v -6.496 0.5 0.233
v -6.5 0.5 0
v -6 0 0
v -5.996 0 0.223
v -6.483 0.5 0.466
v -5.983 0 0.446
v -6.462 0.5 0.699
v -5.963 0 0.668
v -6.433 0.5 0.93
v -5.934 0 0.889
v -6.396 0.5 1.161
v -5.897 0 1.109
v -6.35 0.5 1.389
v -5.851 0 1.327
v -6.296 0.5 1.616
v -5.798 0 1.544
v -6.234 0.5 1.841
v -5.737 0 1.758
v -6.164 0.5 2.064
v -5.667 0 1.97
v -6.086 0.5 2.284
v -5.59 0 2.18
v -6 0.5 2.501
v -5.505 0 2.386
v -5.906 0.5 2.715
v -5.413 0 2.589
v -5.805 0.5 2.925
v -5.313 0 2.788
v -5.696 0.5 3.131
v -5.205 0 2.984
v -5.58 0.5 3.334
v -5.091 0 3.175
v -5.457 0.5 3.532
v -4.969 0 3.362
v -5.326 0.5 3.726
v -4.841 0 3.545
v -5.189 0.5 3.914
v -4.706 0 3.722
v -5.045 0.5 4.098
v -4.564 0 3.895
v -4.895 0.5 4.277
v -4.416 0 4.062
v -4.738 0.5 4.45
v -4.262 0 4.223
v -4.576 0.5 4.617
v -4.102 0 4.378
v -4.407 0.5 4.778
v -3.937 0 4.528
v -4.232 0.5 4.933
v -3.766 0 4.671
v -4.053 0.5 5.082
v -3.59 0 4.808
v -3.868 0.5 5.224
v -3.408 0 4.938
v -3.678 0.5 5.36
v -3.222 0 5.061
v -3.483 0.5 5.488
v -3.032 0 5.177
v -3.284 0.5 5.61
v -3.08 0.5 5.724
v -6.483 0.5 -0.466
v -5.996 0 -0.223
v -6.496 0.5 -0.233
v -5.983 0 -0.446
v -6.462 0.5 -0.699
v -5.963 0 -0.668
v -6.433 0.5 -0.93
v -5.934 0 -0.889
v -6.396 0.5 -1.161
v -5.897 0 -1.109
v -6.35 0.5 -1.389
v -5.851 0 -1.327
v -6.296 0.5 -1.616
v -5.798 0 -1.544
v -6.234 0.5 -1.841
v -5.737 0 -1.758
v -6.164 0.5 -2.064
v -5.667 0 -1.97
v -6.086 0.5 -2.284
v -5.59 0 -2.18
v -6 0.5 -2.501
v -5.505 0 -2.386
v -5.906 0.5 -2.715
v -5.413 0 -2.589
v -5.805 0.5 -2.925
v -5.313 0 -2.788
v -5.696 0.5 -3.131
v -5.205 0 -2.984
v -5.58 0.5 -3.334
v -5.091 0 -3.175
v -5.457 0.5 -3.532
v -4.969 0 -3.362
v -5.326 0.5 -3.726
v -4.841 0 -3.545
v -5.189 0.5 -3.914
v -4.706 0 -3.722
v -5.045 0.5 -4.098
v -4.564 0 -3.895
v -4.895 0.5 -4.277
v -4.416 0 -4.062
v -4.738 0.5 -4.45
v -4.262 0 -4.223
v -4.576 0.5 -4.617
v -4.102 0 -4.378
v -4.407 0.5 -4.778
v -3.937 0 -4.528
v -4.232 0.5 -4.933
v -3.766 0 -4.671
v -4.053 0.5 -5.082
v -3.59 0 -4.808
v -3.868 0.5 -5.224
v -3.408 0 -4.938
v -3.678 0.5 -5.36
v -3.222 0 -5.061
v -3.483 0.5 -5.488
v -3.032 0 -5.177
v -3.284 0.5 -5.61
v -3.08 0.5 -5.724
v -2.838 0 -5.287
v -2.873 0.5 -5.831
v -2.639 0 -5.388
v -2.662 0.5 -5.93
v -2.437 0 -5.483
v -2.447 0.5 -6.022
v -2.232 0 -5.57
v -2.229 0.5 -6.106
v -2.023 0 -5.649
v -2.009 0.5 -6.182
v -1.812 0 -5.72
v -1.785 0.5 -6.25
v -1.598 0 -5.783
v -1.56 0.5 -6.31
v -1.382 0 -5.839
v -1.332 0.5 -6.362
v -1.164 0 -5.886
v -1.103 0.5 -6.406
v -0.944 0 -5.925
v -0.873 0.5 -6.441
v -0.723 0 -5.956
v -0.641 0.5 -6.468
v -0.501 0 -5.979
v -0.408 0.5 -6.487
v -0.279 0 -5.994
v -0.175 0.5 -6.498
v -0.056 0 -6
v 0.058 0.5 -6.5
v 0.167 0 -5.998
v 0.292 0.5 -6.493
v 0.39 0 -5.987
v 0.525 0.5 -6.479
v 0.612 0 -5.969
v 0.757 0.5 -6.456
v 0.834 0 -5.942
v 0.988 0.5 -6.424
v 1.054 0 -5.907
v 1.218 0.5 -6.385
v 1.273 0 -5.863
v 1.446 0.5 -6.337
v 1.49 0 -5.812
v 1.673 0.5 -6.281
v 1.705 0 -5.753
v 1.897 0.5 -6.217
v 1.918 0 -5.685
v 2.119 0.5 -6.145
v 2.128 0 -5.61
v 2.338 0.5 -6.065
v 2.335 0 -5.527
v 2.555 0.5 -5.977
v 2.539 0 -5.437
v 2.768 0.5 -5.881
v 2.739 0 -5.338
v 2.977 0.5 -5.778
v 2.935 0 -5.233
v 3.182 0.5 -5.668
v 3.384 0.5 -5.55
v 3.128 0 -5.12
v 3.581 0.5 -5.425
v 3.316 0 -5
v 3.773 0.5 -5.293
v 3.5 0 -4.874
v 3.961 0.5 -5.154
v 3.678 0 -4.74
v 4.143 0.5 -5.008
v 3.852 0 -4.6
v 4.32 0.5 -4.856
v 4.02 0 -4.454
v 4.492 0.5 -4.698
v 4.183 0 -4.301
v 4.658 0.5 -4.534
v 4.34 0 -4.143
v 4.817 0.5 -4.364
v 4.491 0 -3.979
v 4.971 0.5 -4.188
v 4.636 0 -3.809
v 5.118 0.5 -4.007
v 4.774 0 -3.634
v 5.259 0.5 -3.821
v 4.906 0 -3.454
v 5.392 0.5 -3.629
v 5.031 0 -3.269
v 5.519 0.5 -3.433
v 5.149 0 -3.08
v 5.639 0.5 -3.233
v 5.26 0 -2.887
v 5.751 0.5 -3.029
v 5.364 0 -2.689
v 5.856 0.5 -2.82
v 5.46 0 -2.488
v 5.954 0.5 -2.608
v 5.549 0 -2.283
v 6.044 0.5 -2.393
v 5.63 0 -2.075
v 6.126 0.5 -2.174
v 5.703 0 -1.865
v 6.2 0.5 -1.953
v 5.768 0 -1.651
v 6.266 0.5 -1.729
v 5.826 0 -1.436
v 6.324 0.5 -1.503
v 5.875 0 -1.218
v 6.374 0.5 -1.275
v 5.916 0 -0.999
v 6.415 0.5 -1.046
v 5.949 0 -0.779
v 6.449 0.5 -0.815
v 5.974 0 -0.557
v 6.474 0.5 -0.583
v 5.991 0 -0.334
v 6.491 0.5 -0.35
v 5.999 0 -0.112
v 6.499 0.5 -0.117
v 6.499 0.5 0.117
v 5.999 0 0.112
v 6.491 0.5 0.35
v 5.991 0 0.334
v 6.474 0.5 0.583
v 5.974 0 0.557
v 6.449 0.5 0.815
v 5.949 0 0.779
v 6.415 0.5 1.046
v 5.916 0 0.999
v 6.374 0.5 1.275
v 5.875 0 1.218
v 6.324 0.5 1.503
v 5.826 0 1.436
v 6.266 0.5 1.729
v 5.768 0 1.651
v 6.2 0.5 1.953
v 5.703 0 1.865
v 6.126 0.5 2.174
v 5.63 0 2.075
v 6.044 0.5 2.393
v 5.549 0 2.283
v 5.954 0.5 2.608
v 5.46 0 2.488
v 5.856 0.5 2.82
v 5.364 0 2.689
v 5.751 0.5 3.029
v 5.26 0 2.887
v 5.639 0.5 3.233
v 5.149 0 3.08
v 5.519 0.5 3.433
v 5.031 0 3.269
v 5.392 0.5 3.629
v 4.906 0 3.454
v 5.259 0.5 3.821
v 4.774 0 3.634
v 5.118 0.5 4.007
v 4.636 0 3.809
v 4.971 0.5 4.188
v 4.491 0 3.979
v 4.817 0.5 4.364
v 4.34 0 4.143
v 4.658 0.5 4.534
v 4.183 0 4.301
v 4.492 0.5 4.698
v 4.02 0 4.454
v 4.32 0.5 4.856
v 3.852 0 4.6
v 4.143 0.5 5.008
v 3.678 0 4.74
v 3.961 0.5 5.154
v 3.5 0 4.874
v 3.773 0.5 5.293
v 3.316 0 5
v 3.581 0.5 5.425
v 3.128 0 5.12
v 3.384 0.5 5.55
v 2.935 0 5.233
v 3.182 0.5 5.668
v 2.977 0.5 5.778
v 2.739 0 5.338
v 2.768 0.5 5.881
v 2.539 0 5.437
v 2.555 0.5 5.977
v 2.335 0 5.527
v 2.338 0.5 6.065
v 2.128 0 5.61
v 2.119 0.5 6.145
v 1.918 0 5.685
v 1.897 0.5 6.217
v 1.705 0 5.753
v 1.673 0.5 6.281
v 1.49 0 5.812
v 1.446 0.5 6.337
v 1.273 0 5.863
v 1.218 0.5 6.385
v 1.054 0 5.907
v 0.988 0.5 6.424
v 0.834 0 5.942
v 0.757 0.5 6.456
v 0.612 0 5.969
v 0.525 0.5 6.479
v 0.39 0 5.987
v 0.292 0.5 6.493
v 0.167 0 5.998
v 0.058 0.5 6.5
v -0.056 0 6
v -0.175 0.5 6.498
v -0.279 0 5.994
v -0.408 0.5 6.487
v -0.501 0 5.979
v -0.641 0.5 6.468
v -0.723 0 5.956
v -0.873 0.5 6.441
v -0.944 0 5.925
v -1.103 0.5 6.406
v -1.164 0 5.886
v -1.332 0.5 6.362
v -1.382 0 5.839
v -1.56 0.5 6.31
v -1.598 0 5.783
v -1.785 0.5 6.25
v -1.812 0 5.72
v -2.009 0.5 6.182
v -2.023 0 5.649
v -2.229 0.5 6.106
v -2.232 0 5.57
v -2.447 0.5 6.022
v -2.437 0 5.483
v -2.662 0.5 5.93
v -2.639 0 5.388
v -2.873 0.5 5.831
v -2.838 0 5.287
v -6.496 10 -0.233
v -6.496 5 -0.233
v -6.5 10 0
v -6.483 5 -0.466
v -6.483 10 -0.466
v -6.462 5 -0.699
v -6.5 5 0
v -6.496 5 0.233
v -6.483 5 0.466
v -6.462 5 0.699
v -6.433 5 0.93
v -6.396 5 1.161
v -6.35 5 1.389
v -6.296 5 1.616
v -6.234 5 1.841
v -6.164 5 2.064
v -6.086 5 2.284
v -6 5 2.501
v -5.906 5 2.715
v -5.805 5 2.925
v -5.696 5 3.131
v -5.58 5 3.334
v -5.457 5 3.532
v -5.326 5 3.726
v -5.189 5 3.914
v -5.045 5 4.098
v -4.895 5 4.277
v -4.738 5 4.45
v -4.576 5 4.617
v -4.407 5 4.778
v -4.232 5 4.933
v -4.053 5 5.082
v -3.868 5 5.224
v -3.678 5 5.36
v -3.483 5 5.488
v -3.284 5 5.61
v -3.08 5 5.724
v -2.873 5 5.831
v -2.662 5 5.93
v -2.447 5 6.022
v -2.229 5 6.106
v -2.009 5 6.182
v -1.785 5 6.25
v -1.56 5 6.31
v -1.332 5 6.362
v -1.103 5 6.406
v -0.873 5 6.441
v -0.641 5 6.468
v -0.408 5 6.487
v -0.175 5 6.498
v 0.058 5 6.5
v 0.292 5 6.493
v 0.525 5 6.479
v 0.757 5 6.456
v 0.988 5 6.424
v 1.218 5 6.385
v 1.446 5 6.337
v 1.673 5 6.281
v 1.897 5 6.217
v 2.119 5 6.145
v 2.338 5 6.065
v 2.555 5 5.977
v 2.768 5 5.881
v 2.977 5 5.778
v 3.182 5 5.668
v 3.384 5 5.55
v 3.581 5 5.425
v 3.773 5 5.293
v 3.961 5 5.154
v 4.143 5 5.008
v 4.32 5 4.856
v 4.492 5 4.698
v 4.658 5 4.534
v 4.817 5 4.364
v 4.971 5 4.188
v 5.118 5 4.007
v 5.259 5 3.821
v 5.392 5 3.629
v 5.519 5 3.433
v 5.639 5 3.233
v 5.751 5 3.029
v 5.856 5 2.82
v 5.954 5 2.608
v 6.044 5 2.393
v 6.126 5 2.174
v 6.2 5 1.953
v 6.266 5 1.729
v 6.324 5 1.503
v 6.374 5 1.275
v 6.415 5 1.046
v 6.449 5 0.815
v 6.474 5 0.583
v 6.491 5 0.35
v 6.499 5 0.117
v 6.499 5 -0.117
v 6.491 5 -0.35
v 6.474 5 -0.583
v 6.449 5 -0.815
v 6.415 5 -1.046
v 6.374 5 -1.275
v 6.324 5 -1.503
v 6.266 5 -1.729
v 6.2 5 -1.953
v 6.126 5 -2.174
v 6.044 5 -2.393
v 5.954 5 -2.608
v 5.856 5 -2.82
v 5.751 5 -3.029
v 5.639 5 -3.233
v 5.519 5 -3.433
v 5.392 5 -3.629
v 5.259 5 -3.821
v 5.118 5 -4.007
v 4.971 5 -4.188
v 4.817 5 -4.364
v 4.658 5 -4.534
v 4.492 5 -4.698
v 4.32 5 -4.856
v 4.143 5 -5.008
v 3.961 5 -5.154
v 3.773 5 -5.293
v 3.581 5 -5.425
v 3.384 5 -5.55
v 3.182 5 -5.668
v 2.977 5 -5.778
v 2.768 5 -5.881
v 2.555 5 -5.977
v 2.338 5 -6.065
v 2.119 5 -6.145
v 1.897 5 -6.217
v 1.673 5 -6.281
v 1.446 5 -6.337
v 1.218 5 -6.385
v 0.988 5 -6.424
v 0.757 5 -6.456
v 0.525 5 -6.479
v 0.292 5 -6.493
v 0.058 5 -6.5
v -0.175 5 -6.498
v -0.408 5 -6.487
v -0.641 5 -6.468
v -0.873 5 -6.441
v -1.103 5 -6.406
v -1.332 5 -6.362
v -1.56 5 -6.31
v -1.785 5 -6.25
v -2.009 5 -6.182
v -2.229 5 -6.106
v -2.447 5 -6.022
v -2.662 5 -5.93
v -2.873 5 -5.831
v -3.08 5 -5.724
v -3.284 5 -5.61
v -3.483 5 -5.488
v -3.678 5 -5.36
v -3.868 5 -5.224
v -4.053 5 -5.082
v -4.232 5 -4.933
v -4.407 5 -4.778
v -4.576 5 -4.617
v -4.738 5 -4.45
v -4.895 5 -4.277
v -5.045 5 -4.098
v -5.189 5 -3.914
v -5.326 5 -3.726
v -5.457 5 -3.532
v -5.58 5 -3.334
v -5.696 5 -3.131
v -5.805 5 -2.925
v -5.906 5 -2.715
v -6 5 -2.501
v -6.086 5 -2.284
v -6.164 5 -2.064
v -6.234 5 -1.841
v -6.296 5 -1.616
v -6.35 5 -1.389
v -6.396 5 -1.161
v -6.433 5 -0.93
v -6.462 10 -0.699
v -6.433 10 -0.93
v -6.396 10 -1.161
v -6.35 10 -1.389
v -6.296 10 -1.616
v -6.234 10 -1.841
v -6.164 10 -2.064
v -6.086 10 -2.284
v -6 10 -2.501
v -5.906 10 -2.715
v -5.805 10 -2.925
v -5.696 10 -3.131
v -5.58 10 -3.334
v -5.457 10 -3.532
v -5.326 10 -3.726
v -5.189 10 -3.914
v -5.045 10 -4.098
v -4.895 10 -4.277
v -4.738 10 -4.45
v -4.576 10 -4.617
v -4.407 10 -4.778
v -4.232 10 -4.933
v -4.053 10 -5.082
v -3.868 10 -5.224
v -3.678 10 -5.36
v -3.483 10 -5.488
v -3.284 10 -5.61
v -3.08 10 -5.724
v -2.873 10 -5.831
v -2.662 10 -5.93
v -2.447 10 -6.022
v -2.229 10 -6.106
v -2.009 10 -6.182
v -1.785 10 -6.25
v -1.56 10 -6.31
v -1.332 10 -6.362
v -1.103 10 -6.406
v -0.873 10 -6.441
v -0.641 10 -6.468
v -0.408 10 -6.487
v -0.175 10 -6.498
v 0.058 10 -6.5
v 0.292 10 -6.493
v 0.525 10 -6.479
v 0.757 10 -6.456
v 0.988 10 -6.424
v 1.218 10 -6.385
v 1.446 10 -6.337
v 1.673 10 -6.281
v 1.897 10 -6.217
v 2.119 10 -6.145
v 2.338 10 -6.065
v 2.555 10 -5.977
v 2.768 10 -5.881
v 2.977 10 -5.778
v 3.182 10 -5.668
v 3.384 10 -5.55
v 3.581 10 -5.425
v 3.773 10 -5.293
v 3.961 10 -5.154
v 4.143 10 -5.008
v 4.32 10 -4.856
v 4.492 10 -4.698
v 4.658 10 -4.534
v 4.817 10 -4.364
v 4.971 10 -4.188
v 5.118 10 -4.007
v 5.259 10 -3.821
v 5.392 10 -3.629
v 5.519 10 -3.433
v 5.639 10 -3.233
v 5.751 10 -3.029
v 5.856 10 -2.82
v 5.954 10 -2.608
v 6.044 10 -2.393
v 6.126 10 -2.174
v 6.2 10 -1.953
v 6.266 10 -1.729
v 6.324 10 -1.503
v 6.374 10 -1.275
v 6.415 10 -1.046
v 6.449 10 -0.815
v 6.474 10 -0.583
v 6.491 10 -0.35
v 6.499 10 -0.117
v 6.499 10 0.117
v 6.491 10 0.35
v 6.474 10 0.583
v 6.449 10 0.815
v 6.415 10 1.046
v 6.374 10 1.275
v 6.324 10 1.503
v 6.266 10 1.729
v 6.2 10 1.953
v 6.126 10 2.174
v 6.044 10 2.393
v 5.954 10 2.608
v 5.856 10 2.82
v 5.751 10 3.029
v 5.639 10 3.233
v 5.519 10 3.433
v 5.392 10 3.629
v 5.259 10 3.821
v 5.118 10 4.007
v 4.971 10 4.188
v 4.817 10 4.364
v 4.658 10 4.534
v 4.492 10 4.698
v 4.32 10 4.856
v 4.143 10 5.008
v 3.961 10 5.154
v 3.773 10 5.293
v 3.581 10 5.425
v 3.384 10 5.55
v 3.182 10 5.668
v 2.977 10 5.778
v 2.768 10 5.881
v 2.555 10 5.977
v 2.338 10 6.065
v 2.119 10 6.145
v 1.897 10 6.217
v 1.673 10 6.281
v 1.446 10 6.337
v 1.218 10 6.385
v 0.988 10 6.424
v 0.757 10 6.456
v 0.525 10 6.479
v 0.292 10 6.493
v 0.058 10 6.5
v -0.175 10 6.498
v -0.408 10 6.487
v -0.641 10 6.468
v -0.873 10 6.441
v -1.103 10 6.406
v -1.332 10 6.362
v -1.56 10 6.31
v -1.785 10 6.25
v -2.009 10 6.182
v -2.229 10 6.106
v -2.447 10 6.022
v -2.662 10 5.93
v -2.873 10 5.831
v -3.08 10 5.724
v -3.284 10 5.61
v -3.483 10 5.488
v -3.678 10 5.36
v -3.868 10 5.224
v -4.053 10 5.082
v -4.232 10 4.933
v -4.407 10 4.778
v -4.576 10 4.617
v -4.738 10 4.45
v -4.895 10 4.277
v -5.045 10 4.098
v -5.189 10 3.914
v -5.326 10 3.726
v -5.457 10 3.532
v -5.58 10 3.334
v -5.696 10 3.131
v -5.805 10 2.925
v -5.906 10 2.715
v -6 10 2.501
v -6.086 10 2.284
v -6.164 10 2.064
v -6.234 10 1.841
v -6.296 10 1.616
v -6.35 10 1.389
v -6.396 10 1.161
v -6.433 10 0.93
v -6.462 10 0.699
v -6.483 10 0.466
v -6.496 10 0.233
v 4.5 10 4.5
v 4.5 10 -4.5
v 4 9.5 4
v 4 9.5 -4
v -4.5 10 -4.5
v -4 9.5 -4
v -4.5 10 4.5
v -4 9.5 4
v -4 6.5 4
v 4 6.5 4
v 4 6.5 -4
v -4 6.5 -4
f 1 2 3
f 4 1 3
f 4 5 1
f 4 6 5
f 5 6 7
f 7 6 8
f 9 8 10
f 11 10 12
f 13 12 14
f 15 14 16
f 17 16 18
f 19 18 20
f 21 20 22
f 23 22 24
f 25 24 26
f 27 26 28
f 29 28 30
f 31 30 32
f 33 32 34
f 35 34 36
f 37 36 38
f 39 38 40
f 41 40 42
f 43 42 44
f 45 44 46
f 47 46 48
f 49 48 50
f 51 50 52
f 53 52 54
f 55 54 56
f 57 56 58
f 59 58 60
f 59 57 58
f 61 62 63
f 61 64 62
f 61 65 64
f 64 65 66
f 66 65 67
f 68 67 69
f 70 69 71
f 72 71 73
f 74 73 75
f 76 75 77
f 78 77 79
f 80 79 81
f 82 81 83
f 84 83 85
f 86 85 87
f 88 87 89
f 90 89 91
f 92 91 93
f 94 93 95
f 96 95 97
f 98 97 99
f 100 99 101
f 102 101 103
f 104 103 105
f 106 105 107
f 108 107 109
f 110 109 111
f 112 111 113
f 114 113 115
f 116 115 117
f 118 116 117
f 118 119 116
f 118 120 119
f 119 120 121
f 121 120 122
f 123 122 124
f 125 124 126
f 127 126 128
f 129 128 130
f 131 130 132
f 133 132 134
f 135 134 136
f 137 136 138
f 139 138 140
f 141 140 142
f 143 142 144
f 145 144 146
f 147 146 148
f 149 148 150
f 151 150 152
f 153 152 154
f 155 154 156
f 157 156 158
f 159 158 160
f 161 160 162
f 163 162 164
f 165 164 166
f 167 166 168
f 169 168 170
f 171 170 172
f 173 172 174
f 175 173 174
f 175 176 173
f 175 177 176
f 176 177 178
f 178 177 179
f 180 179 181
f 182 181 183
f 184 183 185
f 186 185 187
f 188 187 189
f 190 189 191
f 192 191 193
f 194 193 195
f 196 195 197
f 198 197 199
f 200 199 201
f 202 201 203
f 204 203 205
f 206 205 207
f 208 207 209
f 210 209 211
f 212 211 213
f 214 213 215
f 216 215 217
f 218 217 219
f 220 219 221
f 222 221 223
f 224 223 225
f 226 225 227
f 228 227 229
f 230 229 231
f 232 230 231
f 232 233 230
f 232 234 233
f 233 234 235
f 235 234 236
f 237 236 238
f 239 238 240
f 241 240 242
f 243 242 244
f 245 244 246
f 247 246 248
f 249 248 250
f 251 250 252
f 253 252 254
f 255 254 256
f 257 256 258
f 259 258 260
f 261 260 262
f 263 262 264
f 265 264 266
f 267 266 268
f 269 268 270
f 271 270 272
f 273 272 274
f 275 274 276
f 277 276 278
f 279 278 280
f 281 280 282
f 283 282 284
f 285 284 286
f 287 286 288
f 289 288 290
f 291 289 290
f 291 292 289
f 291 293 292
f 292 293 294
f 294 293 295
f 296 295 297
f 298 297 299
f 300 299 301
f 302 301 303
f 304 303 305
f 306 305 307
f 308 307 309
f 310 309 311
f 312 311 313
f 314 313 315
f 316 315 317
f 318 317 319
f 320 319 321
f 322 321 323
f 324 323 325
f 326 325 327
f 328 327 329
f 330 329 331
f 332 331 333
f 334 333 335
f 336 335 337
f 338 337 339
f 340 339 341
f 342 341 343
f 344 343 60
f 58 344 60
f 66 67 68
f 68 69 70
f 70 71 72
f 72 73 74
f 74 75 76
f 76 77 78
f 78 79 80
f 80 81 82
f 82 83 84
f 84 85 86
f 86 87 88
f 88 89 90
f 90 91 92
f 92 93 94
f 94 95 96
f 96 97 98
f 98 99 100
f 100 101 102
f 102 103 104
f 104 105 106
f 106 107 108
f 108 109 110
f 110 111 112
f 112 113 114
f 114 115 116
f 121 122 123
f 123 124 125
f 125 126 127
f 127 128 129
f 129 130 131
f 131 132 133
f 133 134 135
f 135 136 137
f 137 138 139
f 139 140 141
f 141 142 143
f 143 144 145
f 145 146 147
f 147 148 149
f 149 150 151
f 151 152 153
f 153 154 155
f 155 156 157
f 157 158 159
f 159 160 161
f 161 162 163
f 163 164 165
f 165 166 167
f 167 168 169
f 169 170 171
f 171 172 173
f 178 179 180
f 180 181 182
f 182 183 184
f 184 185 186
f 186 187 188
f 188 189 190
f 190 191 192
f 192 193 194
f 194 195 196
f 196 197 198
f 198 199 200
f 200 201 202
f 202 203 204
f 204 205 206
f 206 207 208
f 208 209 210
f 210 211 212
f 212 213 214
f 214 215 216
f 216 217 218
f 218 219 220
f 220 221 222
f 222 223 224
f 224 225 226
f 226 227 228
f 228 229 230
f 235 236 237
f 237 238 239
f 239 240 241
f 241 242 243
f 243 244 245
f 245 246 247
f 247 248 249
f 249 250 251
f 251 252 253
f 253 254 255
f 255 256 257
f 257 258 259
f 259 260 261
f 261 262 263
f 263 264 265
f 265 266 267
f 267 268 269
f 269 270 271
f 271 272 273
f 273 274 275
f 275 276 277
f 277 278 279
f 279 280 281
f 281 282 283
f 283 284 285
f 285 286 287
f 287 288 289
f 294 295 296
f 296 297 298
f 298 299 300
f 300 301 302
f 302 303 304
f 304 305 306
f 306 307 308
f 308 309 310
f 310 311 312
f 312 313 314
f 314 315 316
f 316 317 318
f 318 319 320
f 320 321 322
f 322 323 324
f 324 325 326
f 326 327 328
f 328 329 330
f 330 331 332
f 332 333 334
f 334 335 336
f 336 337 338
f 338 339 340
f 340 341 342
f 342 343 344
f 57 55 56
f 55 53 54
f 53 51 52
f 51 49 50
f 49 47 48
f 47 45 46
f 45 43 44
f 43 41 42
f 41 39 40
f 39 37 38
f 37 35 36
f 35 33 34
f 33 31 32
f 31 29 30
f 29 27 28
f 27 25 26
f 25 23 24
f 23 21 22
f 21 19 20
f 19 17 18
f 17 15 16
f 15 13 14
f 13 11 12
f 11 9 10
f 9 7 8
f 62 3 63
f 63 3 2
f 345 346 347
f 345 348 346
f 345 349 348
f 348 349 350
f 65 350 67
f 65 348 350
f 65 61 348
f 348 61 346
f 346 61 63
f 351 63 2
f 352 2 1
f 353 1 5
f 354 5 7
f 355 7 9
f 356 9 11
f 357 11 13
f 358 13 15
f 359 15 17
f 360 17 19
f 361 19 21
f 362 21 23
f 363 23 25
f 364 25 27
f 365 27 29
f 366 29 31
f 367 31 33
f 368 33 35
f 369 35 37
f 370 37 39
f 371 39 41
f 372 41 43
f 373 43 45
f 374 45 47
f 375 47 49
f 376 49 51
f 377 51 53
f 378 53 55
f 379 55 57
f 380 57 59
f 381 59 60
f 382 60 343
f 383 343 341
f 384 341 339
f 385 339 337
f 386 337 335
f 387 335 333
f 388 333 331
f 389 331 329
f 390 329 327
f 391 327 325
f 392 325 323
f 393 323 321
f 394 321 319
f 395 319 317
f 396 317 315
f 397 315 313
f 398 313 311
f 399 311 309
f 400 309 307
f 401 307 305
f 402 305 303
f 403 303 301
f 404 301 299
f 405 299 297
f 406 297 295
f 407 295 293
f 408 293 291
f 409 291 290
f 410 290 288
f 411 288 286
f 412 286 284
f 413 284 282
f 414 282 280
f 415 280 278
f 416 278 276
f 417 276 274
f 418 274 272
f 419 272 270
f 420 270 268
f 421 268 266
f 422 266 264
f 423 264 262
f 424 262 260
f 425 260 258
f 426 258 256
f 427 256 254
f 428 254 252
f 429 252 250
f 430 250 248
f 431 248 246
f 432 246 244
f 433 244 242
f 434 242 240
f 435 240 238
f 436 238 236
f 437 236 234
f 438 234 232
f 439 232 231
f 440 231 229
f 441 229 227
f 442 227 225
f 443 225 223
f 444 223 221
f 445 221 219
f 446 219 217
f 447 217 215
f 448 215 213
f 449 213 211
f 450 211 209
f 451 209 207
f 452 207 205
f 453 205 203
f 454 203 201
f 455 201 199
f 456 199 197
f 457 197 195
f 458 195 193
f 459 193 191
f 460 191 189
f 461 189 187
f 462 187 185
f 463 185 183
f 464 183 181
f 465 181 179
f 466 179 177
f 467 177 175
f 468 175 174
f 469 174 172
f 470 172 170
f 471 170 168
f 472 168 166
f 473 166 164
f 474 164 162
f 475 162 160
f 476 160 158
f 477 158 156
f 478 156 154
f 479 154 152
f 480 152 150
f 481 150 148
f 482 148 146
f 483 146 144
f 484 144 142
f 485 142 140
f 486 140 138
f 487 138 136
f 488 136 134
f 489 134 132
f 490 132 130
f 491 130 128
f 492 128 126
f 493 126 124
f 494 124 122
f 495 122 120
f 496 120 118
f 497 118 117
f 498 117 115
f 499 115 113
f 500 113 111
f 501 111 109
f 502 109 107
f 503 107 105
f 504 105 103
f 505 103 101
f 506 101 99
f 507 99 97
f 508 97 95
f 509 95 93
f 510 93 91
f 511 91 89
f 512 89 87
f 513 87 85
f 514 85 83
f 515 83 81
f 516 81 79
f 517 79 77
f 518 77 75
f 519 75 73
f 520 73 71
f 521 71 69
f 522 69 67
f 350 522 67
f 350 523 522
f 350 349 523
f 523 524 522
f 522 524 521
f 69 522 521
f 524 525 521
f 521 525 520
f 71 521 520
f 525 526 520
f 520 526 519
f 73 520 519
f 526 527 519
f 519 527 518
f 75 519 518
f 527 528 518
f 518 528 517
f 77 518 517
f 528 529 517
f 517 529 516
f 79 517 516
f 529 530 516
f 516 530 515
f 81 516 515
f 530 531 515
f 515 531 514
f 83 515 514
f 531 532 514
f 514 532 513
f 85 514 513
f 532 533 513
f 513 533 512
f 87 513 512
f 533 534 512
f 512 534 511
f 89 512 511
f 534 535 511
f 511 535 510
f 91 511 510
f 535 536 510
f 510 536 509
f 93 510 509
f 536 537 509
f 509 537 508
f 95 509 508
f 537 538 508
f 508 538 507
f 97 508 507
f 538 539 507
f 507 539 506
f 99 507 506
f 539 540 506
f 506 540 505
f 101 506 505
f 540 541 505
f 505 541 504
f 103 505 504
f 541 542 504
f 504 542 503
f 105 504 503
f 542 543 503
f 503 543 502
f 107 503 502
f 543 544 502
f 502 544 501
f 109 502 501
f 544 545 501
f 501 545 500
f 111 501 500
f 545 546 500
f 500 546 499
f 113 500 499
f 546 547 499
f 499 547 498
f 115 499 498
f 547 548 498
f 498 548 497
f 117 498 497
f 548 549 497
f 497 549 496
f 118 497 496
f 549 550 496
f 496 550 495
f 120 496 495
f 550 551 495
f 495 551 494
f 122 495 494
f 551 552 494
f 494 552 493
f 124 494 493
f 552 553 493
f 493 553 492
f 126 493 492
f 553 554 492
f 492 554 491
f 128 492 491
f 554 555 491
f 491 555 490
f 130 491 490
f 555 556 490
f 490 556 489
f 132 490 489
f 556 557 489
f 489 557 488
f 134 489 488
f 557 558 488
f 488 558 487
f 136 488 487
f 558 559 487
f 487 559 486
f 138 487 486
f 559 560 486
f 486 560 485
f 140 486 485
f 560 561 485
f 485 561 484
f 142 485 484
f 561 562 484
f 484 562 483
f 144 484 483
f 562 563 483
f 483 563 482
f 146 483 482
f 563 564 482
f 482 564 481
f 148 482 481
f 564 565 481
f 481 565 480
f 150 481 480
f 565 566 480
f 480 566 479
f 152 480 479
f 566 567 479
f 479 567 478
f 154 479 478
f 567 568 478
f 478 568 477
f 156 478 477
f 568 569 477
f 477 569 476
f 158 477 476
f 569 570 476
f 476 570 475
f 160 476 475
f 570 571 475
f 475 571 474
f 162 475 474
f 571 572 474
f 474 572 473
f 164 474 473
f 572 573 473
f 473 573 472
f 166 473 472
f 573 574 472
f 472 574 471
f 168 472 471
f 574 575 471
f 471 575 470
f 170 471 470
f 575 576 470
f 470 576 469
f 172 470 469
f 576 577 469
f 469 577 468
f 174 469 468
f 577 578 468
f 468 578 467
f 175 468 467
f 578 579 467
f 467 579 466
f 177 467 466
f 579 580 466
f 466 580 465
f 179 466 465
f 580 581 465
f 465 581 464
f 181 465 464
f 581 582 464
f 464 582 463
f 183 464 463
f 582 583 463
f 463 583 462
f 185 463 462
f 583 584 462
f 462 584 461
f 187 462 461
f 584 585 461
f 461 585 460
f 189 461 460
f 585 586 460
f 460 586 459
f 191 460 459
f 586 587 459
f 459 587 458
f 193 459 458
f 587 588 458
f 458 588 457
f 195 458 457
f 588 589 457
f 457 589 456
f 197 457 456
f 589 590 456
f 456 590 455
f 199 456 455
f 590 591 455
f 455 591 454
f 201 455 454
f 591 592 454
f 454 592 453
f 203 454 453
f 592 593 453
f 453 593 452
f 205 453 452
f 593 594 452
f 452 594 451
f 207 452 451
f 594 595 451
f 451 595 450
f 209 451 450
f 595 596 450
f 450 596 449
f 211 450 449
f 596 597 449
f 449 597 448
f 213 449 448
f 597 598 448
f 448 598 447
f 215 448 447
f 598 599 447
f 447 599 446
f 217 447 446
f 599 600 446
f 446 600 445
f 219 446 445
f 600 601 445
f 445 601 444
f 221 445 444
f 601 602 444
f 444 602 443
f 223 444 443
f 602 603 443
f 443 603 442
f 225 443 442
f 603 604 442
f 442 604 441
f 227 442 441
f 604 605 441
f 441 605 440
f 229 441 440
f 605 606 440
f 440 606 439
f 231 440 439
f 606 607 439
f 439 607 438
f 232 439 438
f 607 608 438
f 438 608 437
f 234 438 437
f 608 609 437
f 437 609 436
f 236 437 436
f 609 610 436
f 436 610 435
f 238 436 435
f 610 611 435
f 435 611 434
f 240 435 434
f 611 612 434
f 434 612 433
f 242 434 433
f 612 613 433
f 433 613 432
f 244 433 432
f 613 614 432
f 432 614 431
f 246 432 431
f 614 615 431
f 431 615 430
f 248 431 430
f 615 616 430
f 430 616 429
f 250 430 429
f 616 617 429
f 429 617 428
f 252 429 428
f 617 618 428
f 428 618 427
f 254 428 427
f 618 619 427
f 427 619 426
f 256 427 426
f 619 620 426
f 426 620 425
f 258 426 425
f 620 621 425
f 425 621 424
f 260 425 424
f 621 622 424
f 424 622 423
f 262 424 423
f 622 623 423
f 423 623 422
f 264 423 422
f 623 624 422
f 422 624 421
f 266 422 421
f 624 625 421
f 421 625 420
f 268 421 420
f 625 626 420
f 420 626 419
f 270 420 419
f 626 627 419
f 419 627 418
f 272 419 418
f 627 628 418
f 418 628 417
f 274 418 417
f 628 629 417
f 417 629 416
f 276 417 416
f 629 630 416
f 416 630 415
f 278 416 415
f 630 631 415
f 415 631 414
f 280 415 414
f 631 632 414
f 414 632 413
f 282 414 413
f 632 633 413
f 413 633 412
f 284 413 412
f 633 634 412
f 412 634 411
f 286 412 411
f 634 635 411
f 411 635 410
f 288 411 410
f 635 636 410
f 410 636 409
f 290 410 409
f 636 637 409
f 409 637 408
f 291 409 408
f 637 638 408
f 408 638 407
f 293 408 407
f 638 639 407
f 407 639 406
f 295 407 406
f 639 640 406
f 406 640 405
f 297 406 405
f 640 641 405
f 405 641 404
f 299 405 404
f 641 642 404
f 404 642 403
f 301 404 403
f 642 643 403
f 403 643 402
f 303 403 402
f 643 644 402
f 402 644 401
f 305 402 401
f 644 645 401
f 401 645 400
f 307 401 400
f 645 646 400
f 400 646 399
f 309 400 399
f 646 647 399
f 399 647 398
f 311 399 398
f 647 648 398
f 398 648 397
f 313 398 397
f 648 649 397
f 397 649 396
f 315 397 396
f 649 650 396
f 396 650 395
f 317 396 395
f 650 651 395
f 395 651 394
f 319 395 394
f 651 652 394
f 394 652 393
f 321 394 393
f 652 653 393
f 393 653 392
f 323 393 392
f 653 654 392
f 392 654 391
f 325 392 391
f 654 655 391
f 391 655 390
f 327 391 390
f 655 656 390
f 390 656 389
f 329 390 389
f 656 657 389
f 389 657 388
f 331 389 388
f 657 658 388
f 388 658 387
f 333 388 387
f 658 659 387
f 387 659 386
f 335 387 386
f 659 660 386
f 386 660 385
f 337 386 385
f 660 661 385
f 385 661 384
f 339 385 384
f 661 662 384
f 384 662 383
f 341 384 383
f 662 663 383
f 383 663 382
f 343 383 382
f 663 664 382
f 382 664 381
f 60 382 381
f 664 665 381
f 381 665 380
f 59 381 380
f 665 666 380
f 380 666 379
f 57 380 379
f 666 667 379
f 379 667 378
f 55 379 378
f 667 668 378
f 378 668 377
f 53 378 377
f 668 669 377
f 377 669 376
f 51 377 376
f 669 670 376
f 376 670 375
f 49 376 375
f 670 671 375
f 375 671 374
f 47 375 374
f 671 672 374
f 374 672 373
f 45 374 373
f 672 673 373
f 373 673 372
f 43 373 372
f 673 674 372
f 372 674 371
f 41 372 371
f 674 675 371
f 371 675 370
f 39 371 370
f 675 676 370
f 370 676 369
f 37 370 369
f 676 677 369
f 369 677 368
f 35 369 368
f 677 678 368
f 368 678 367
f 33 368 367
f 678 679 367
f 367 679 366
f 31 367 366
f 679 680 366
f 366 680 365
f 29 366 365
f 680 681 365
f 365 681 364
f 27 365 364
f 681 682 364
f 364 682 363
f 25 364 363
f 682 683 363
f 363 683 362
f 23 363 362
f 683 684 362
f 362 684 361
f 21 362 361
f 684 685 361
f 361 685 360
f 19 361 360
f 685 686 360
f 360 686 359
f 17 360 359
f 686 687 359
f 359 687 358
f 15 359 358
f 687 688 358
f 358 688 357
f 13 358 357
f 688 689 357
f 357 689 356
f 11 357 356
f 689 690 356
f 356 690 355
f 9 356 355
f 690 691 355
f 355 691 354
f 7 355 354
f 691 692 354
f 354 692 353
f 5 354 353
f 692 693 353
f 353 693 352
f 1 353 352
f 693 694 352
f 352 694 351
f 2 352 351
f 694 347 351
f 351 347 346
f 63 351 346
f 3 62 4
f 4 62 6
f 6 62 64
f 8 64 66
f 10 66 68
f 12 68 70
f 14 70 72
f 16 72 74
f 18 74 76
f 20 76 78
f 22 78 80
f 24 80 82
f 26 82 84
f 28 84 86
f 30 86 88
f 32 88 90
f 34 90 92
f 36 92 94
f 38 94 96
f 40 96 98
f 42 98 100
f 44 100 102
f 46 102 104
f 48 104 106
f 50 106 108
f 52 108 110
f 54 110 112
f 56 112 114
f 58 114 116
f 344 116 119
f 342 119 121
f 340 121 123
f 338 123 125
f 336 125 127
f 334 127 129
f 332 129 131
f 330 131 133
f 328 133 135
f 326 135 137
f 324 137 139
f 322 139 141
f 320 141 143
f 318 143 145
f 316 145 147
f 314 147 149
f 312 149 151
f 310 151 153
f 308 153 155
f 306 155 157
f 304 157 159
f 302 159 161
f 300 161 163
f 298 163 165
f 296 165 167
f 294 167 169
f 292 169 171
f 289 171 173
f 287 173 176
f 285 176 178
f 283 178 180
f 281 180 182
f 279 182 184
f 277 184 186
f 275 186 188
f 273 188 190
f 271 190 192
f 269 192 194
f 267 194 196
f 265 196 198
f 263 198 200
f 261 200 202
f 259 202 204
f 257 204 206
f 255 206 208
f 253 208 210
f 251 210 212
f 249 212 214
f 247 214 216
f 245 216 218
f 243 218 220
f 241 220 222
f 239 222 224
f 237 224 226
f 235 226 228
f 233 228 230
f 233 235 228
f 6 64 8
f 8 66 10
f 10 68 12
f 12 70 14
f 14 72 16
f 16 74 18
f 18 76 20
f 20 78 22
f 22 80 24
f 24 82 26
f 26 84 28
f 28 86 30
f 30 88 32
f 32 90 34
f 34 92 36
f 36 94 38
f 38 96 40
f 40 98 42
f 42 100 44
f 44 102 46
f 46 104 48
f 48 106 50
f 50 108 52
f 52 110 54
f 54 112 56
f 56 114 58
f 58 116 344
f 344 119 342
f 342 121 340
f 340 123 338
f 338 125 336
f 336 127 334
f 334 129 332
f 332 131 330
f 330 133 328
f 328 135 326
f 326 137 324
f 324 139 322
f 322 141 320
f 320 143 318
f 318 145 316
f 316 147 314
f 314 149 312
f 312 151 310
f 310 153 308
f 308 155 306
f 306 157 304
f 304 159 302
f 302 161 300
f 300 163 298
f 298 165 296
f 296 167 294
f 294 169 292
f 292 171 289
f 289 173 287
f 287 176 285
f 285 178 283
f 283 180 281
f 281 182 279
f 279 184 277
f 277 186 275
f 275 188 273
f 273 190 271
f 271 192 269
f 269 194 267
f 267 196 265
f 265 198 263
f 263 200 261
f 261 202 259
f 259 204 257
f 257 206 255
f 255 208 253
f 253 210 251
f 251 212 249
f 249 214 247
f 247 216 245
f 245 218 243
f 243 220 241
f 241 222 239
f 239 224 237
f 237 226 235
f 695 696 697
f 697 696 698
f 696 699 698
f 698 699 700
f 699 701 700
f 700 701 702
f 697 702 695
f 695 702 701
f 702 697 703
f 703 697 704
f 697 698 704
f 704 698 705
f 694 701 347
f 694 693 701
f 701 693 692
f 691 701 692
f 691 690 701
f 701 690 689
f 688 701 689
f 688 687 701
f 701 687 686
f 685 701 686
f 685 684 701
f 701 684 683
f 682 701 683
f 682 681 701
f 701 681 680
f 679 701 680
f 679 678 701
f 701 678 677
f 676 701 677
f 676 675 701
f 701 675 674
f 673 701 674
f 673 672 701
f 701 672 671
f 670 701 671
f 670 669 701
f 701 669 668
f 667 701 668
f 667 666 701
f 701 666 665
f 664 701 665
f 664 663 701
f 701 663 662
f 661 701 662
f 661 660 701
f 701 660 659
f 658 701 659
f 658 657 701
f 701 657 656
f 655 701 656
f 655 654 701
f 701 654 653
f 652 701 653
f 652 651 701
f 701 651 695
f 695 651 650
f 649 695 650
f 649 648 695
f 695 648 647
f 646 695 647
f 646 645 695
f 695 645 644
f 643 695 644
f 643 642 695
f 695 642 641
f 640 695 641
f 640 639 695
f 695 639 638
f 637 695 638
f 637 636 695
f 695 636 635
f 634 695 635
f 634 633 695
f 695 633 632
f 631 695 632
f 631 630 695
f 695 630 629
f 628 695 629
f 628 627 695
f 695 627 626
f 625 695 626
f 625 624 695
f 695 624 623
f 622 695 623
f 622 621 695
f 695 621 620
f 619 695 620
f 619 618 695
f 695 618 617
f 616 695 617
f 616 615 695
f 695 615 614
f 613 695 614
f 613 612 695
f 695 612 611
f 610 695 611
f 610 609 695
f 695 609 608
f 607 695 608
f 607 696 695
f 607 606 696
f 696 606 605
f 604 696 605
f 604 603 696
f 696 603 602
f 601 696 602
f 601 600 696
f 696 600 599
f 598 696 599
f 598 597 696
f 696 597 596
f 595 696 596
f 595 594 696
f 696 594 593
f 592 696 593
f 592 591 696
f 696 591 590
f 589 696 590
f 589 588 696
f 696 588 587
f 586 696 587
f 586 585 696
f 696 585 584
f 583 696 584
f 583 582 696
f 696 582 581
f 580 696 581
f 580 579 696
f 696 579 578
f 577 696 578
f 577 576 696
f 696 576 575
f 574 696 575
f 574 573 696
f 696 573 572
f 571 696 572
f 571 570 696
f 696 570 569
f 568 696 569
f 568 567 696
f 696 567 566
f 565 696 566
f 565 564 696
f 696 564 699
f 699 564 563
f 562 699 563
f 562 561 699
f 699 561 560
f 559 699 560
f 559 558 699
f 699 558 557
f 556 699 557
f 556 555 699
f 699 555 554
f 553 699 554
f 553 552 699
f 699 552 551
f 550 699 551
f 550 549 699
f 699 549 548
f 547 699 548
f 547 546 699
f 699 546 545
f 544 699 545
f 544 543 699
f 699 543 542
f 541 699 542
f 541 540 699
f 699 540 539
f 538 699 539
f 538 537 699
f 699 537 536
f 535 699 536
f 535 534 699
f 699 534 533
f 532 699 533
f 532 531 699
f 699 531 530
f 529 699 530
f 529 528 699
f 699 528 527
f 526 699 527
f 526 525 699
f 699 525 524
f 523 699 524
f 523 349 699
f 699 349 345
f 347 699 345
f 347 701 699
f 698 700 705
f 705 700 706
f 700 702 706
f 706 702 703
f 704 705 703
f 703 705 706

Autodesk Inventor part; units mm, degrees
ref_plane "YZ Plane" through (0, 0, 0) normal (1, 0, 0) x (0, 1, 0)
ref_plane "XZ Plane" through (0, 0, 0) normal (0, 1, 0) x (-1, 0, 0)
ref_plane "XY Plane" through (0, 0, 0) normal (0, 0, 1) x (1, 0, 0)
sketch "Szkic1" plane through (0, 0, 0) normal (0, 1, 0) x (-1, 0, 0)
  circle A0 centre (0, 0) radius 6.5
  dimension "d0" = 13
extrude "Wyciągnięcie proste1" add sketch "Szkic1" along normal blind 10
sketch "Szkic2" plane through (0, 10, 0) normal (0, 1, 0) x (1, 0, 0)
  circle A0 centre (0, 0) radius 6.5 projected
  line L0 (4, -4) -> (-4, -4)
  line L1 (-4, -4) -> (-4, 4)
  line L2 (-4, 4) -> (4, 4)
  line L3 (4, 4) -> (4, -4)
  line L4 (4, -4) -> (-4, 4) construction
  line L5 (-4, -4) -> (4, 4) construction
  dimension "d3" = 8
  dimension "d4" = 8
extrude "Wyciągnięcie proste2" cut sketch "Szkic2" against normal blind 3.5 contours L0 L1 L2 L3
chamfer "Faza1" distance 0.5 angle 45 4 edges at (-4, 10, 0) (0, 10, 4) (4, 10, 0) (0, 10, -4)
chamfer "Faza2" distance 0.5 angle 45 1 edges at (6.5, 0, 0)
properties part number "koncowka z miejscem na magnes neodymowy 7x7x3"
